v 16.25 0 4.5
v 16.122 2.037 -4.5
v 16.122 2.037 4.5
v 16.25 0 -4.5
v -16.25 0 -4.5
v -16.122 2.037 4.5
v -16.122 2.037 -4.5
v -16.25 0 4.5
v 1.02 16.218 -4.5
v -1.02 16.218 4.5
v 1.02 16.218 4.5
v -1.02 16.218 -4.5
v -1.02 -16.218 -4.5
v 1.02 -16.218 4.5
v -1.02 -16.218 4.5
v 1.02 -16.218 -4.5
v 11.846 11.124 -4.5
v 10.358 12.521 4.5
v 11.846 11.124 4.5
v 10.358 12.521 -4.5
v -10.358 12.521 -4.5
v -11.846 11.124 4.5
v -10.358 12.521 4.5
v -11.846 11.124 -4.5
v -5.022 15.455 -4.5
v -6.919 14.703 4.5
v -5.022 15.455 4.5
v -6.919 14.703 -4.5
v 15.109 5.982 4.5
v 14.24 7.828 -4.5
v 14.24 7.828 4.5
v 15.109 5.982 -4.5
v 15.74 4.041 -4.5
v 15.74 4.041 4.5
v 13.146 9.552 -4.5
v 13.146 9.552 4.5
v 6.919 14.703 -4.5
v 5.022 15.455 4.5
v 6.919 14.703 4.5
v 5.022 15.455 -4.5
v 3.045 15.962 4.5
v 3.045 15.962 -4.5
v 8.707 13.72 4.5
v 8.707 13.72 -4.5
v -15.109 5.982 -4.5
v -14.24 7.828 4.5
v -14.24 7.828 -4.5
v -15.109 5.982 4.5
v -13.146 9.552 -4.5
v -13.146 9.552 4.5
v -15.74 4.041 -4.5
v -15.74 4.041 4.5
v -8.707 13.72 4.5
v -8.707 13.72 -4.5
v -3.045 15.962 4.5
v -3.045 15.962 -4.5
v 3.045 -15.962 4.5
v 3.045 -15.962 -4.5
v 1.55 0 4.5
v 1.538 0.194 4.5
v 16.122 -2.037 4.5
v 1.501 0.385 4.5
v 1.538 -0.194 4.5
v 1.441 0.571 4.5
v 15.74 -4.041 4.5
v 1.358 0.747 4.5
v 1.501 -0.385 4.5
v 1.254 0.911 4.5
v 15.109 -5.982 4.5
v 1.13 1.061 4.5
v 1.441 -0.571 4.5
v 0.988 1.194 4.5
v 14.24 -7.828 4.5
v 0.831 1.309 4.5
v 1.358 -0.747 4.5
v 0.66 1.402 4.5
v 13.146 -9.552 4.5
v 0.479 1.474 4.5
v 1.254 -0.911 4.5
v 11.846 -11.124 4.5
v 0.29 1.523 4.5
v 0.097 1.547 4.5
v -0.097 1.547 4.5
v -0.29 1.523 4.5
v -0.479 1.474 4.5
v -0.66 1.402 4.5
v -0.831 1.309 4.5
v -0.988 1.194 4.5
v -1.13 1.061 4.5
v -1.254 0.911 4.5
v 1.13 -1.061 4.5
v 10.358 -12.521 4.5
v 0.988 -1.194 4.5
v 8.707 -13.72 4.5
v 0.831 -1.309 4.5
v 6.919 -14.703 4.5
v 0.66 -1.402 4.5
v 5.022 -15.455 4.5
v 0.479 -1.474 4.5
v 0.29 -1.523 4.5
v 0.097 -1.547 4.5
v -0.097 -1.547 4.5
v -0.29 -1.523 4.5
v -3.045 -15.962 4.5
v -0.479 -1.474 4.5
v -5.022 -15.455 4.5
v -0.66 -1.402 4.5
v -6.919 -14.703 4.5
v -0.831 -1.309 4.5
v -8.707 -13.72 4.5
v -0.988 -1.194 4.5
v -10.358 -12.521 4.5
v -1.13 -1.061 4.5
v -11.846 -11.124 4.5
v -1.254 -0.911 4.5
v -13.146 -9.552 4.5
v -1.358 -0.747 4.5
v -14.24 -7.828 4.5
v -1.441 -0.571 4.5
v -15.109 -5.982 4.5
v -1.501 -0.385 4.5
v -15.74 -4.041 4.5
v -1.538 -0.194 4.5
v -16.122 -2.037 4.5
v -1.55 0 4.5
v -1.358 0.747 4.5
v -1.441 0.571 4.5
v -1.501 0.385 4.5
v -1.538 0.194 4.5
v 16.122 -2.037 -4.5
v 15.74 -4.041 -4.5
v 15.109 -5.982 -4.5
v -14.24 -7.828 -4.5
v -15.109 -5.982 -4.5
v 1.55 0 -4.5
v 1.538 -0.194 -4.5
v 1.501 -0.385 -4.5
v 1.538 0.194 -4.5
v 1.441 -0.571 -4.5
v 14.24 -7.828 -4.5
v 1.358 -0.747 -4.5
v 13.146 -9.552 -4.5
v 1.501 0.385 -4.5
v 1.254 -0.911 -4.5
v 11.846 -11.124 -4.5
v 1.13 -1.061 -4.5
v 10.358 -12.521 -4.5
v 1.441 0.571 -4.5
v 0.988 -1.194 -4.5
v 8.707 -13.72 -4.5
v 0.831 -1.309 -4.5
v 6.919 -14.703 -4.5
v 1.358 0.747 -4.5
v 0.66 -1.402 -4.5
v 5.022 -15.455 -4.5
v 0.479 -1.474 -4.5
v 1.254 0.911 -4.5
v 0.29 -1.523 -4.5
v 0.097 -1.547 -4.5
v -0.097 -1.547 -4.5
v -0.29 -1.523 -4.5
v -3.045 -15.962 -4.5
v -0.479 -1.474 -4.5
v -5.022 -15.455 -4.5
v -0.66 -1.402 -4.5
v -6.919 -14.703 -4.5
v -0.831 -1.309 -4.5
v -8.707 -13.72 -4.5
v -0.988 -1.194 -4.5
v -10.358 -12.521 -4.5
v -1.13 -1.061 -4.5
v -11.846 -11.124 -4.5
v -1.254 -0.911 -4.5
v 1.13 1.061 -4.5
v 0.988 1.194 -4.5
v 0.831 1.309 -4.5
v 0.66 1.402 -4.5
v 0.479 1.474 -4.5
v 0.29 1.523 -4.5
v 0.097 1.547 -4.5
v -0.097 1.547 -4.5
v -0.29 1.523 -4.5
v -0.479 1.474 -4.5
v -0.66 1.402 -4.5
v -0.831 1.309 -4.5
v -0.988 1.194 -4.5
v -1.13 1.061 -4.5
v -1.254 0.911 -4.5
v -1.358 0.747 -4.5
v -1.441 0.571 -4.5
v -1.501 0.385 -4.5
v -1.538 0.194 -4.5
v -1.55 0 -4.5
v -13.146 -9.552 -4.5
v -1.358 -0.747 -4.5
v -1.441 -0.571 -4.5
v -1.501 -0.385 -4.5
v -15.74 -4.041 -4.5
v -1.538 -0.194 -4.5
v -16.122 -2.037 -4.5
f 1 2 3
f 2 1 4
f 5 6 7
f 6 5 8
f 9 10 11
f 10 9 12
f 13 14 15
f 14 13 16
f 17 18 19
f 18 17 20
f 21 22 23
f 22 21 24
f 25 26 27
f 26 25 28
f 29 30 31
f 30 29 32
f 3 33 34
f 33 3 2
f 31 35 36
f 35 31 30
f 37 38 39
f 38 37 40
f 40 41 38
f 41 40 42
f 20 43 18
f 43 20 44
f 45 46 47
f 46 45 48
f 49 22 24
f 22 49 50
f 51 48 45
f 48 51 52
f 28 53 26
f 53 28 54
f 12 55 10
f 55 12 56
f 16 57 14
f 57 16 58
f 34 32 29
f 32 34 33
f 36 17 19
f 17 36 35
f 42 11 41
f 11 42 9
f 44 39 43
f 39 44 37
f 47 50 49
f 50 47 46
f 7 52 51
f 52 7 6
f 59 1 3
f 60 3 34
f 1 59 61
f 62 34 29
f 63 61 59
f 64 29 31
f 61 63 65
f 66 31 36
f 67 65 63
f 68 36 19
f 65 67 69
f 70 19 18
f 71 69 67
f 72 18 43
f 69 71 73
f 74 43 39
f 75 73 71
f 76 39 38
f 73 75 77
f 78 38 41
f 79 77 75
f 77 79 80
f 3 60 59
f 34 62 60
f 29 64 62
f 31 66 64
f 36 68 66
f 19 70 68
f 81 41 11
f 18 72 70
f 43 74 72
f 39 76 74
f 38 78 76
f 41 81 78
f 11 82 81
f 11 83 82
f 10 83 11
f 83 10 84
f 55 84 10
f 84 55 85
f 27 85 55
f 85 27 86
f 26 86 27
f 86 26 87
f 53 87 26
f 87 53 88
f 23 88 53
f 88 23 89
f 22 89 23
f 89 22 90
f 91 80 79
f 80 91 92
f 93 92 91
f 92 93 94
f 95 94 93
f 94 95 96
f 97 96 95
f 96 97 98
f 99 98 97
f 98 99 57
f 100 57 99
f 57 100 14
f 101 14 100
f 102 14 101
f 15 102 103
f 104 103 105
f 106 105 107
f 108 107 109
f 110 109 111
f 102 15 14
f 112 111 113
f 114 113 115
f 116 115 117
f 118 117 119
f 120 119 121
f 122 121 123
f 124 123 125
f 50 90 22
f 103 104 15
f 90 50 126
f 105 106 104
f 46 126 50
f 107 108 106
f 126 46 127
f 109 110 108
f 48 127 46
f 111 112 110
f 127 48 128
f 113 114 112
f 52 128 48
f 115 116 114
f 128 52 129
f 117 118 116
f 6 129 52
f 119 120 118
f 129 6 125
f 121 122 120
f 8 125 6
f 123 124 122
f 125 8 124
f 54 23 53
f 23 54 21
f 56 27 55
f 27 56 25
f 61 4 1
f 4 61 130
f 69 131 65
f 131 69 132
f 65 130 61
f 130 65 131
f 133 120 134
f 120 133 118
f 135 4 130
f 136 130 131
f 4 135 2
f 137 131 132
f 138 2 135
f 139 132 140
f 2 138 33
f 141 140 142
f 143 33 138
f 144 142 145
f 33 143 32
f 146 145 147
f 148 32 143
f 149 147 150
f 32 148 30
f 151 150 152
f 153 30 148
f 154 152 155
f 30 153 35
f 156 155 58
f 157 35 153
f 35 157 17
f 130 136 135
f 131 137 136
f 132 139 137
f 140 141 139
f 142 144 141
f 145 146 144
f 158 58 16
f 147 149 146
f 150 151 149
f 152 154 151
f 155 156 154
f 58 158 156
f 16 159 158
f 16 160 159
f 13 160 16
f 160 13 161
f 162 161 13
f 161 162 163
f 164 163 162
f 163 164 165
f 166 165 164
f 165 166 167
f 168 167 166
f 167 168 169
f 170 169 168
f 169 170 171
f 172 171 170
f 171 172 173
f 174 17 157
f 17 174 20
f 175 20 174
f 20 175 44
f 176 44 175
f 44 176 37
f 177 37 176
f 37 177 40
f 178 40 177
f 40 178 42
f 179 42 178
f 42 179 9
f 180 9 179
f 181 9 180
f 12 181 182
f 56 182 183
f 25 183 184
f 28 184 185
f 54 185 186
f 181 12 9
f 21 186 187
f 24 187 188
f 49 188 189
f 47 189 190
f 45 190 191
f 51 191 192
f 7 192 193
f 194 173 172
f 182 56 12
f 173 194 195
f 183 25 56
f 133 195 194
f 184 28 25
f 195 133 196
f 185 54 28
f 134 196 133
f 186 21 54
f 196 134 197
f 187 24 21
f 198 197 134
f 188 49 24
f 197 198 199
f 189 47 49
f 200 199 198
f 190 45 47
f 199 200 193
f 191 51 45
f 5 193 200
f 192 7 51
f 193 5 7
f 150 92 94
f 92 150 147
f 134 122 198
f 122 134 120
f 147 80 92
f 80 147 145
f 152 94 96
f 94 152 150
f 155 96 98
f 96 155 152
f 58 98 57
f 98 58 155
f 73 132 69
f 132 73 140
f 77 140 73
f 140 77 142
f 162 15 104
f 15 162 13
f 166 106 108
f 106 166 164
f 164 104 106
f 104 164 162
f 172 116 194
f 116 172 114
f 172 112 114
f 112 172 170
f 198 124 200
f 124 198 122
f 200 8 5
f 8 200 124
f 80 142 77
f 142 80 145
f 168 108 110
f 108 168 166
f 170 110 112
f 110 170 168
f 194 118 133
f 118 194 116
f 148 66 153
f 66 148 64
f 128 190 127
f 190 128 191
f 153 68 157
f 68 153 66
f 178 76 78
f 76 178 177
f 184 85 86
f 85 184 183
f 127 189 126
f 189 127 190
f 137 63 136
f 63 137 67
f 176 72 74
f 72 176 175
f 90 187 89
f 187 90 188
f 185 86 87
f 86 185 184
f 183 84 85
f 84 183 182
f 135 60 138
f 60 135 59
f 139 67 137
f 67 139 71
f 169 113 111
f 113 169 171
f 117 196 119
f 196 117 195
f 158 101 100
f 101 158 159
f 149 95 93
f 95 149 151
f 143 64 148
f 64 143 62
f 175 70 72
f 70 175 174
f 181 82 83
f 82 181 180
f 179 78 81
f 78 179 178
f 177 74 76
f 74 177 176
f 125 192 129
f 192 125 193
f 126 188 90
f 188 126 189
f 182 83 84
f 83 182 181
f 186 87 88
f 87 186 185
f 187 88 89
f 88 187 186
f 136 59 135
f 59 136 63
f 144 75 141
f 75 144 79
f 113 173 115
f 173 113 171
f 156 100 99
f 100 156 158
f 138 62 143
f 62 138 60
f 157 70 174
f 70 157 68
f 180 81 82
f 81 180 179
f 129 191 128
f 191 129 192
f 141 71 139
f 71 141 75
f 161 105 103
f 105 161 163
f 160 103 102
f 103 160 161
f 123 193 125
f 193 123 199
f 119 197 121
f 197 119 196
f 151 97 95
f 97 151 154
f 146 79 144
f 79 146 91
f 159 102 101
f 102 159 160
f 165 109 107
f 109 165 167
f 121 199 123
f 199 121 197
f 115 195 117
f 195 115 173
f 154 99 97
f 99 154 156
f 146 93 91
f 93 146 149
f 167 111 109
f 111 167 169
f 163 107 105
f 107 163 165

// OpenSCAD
$fn = 50;


difference() {
	union() {
		translate(v = [0, 0, -4.5000000000]) {
			cylinder(h = 9, r = 16.2500000000);
		}
	}
	union() {
		translate(v = [0, 0, -100.0000000000]) {
			cylinder(h = 200, r = 1.5500000000);
		}
	}
}
